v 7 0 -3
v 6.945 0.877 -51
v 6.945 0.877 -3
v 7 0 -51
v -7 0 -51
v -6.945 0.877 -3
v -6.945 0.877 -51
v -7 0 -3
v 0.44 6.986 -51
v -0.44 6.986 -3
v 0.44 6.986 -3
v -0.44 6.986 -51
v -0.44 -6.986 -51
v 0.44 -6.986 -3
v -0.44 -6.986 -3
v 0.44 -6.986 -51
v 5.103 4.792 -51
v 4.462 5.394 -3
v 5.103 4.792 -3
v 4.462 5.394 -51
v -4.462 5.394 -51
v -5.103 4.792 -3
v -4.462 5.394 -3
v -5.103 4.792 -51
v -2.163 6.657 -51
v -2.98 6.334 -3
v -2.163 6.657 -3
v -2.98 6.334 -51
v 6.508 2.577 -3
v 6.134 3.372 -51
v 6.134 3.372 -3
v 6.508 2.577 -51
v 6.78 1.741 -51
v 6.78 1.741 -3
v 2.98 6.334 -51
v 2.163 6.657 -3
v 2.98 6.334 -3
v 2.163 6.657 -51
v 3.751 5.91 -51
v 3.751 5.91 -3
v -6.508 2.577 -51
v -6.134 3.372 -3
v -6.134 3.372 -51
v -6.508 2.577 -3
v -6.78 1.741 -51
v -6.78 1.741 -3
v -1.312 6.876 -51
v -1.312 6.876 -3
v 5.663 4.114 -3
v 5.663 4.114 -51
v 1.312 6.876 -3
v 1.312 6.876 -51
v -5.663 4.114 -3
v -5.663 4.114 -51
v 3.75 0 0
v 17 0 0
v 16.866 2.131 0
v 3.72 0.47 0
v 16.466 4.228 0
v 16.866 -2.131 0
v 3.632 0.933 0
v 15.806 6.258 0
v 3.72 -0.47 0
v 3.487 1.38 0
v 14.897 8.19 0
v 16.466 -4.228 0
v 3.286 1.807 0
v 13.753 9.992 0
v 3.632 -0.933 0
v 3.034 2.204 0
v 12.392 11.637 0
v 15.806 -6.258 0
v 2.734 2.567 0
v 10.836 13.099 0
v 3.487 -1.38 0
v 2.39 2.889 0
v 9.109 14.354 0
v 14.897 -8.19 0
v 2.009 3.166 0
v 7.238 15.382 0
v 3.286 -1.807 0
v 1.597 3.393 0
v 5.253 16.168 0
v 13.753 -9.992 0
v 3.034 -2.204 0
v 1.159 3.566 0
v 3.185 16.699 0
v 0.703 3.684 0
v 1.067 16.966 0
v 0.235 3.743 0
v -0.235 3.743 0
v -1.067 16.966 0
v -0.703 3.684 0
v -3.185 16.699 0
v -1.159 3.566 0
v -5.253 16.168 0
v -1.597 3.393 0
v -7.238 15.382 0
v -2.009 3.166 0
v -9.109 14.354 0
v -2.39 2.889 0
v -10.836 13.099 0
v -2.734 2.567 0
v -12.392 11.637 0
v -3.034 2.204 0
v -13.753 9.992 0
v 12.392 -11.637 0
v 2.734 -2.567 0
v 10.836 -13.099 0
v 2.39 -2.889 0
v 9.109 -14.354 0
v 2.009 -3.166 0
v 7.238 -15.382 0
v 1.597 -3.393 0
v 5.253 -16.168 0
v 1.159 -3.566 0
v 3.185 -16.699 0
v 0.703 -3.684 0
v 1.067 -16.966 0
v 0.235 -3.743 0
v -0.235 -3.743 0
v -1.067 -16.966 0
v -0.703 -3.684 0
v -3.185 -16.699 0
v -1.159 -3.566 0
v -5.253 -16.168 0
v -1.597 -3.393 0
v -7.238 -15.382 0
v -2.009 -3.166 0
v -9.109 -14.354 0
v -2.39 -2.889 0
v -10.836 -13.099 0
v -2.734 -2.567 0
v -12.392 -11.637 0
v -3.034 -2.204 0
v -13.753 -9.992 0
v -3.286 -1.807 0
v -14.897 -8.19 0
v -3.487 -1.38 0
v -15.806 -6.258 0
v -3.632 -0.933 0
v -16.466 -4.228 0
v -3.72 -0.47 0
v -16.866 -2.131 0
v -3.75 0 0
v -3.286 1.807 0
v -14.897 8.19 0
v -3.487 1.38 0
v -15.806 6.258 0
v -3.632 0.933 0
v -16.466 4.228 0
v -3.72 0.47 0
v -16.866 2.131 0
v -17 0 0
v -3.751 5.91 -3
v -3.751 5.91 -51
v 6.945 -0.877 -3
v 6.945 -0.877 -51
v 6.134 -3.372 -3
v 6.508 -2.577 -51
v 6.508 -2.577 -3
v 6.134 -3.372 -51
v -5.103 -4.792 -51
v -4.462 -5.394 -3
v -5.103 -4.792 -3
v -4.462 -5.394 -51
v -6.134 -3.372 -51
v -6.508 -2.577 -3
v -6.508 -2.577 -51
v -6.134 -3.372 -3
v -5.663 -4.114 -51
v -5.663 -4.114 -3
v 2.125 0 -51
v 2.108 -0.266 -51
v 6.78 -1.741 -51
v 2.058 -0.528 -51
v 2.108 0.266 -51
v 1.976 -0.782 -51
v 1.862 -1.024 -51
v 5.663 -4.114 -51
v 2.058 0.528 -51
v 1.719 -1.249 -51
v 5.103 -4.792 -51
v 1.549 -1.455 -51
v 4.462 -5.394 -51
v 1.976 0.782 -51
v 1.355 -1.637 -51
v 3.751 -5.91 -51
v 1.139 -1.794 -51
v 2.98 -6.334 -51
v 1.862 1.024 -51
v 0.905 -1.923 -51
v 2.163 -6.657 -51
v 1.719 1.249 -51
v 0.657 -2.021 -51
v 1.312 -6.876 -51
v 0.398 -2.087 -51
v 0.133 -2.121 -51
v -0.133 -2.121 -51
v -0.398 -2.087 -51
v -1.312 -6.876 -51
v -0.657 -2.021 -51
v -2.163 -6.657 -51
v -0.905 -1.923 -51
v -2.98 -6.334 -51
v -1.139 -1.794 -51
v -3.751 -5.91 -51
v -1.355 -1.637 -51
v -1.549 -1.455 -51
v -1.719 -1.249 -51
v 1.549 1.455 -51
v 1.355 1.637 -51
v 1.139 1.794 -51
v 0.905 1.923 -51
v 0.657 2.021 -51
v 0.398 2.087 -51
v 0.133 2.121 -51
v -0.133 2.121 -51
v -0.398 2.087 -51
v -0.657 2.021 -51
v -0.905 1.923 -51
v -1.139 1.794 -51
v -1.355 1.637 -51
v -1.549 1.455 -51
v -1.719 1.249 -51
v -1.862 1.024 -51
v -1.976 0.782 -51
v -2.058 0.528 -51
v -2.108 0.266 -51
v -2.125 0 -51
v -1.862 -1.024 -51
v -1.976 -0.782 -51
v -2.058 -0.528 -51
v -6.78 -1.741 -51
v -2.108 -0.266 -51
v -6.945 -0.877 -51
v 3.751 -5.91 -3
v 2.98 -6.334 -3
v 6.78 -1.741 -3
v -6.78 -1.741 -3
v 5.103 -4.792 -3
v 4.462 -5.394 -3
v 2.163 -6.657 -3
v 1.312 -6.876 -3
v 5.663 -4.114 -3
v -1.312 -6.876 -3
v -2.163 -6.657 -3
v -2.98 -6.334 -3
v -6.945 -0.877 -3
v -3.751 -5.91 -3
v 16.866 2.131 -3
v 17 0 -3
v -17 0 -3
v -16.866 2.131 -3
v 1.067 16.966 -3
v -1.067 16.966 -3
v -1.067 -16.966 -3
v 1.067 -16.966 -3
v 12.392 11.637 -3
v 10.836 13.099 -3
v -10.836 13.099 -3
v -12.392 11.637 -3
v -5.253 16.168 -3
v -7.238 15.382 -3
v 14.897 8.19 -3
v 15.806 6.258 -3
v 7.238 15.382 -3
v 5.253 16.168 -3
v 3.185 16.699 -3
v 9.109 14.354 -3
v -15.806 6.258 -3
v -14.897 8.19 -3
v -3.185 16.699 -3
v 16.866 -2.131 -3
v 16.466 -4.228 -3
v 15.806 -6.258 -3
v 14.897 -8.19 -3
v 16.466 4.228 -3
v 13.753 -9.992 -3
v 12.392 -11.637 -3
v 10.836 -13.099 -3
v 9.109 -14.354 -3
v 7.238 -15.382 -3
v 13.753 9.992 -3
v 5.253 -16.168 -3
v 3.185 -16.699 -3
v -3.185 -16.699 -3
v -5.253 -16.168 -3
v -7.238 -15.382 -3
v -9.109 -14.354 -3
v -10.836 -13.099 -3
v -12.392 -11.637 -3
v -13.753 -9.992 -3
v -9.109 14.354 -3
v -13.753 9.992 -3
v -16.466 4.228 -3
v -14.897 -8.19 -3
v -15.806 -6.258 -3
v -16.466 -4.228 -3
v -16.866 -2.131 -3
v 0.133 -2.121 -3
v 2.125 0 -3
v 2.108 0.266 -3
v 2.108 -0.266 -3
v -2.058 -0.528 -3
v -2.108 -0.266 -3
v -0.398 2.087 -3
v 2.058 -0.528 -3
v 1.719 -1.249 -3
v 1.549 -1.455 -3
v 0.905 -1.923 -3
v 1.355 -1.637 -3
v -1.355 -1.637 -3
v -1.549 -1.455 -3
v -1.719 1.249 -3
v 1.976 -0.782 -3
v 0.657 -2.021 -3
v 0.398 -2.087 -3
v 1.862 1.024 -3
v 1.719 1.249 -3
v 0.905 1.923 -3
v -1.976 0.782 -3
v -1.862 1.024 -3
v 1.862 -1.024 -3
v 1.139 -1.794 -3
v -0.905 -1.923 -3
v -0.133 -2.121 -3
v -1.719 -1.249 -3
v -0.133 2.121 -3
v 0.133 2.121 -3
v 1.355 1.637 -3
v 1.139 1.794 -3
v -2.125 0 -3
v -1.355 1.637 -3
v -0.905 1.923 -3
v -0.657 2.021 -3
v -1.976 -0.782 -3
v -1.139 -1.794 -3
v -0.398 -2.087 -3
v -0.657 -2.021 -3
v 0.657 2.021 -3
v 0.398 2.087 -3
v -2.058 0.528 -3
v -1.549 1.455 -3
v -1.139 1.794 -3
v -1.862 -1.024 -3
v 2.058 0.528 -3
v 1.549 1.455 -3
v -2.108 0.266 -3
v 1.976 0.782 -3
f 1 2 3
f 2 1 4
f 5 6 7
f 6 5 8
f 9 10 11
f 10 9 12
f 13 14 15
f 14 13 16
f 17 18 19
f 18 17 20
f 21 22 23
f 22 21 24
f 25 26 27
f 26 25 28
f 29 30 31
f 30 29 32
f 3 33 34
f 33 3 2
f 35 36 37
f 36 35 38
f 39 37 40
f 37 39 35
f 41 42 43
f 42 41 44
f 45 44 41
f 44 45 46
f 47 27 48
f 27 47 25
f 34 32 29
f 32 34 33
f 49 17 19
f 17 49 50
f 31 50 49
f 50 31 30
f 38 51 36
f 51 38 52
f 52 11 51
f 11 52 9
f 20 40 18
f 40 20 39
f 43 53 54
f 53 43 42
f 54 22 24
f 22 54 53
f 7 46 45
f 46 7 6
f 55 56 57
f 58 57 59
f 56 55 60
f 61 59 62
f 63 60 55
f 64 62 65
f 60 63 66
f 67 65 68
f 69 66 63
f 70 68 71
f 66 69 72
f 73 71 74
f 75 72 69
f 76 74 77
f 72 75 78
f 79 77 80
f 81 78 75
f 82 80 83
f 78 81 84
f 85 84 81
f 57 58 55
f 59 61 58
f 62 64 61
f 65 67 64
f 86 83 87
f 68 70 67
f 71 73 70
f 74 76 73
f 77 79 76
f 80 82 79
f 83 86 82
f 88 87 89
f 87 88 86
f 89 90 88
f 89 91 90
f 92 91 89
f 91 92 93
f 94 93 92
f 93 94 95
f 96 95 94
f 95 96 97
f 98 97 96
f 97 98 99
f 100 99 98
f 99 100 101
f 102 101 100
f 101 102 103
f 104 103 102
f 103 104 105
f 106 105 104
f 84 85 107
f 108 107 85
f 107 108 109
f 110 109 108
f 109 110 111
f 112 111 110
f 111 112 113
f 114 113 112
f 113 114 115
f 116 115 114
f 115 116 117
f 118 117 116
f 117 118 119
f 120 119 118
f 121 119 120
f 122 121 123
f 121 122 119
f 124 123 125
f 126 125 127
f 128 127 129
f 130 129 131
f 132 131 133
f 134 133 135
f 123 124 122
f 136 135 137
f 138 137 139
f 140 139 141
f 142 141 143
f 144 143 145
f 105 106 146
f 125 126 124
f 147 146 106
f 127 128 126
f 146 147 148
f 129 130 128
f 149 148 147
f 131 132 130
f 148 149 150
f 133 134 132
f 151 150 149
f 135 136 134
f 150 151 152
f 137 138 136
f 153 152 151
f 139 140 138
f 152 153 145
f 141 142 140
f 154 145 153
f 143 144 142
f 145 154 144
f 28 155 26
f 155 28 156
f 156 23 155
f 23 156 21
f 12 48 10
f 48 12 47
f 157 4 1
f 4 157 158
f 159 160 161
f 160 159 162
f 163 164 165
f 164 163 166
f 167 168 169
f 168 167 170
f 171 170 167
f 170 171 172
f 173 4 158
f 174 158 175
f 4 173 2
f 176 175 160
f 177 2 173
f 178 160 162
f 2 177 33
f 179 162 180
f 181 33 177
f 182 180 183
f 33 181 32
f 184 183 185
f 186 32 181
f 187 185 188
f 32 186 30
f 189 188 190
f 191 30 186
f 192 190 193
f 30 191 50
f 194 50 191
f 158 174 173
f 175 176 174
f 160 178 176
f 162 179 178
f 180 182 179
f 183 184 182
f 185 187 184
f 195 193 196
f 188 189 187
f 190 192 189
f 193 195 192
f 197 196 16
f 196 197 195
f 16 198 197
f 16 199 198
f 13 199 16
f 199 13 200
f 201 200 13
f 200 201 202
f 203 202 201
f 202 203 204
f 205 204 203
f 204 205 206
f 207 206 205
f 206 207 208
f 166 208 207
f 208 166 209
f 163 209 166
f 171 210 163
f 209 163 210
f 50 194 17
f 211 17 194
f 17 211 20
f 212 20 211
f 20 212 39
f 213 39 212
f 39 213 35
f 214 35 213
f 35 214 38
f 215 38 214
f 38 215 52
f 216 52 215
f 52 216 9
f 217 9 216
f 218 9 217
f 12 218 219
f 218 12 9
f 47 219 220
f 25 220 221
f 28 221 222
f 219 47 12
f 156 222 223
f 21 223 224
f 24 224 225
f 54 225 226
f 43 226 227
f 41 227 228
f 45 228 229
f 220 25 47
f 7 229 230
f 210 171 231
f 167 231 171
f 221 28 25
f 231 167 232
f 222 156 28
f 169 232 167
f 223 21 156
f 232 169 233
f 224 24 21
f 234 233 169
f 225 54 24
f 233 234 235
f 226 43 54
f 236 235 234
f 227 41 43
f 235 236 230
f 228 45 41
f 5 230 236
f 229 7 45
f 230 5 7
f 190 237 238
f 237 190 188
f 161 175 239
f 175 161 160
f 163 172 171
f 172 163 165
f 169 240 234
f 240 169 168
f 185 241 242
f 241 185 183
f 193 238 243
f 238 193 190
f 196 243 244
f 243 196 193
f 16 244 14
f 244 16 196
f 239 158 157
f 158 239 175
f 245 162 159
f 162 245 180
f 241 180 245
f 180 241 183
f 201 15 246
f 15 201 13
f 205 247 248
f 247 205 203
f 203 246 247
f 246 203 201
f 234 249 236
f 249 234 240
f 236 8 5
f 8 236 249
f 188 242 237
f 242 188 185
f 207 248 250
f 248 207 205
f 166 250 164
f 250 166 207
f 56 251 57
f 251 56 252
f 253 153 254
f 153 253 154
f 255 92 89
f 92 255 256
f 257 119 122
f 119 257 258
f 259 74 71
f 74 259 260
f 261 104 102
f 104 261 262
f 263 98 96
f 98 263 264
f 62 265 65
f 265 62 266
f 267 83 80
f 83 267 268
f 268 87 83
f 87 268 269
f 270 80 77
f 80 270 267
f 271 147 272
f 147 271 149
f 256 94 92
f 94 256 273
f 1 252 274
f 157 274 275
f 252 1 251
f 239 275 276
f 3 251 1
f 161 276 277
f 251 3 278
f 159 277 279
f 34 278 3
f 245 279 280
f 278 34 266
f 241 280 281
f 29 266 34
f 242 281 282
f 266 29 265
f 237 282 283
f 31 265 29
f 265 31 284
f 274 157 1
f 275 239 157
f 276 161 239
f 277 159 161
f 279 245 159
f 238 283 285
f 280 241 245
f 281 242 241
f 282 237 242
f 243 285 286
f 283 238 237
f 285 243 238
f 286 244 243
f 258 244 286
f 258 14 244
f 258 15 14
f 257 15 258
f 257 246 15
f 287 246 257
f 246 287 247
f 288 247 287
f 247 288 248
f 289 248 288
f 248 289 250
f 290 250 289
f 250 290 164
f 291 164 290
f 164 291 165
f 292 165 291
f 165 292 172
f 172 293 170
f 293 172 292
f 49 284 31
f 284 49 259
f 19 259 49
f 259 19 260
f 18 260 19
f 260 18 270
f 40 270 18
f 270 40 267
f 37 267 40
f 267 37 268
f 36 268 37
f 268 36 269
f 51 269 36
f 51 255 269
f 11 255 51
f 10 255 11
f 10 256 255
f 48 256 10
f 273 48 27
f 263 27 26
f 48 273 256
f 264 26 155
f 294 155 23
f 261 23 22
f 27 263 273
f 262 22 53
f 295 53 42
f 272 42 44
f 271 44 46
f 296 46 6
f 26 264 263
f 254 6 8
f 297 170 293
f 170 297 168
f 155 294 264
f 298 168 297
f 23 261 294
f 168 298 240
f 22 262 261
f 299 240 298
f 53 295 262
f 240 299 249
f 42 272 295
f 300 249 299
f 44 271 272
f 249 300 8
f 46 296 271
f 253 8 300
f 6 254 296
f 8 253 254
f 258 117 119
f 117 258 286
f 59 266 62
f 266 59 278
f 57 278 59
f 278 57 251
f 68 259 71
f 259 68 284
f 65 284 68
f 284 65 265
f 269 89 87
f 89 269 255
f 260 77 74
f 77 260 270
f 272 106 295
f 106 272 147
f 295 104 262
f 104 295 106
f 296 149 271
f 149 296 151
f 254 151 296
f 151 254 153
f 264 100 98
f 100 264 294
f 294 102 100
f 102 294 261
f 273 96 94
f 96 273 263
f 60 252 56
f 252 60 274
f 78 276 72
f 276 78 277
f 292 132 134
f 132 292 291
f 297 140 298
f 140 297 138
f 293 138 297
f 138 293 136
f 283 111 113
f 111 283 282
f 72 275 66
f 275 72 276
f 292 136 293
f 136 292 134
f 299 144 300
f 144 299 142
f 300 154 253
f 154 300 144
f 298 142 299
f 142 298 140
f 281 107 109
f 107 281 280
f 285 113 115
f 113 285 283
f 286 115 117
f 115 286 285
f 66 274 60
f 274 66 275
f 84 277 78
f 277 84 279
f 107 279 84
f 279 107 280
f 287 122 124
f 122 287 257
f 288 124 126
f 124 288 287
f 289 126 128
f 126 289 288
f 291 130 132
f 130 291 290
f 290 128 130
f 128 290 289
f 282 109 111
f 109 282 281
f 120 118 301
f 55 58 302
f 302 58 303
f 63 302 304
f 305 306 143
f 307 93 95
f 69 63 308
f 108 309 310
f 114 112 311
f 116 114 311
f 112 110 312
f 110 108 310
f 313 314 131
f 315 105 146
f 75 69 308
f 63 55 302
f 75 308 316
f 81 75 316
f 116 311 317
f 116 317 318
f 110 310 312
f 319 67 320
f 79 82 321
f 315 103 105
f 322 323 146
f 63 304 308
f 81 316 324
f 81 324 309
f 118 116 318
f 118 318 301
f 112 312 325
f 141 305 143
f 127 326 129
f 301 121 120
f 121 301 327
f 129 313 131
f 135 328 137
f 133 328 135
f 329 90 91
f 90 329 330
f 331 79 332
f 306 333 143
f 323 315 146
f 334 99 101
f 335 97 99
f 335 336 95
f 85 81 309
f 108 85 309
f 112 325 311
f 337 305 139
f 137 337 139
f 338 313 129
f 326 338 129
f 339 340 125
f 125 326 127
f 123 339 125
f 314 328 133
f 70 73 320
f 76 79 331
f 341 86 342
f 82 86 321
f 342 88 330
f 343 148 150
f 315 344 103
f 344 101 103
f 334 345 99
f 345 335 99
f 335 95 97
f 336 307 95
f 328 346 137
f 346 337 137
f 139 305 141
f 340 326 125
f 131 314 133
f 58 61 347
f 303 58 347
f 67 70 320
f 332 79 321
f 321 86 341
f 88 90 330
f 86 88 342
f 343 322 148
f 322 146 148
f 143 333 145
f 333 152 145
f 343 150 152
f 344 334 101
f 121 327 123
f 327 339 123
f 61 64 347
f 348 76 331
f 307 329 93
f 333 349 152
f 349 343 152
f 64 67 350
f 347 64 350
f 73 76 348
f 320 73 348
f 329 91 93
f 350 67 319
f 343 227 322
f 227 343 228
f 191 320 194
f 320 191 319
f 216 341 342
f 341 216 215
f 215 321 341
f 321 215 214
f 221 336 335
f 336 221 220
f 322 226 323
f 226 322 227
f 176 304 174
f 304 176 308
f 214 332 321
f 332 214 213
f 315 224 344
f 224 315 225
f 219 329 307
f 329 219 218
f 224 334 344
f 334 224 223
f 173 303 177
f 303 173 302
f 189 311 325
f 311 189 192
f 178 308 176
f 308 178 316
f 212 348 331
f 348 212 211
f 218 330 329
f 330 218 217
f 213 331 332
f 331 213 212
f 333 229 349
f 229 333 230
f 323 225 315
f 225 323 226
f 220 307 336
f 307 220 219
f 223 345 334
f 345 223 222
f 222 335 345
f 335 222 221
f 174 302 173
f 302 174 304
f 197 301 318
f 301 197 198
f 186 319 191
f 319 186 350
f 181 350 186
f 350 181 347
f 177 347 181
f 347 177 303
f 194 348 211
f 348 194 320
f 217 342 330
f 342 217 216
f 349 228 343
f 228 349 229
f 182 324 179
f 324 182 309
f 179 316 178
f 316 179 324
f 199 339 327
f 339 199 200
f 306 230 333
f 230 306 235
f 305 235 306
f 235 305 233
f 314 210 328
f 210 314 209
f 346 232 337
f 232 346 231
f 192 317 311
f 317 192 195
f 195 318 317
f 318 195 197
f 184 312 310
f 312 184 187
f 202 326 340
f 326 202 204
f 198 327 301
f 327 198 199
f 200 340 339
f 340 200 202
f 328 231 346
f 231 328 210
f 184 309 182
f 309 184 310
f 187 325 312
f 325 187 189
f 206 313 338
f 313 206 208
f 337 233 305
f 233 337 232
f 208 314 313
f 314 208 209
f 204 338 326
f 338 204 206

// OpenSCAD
$fn = 50;


difference() {
	union() {
		translate(v = [0, 0, -51.0000000000]) {
			cylinder(h = 51, r = 7.0000000000);
		}
		translate(v = [0, 0, -3.0000000000]) {
			cylinder(h = 3, r = 17.0000000000);
		}
	}
	union() {
		translate(v = [0, 0, 0]) {
			rotate(a = [0, 0, 0]) {
				difference() {
					union() {
						#translate(v = [0, 0, -51.0000000000]) {
							cylinder(h = 51, r = 2.0000000000);
						}
						#translate(v = [0, 0, -3]) {
							cylinder(h = 3, r = 7.0000000000, r1 = 2.1250000000, r2 = 3.7500000000);
						}
						#translate(v = [0, 0, -51.0000000000]) {
							cylinder(h = 51, r = 2.1250000000);
						}
						#translate(v = [0, 0, -51.0000000000]) {
							cylinder(h = 51, r = 2.0000000000);
						}
					}
					union();
				}
			}
		}
	}
}
